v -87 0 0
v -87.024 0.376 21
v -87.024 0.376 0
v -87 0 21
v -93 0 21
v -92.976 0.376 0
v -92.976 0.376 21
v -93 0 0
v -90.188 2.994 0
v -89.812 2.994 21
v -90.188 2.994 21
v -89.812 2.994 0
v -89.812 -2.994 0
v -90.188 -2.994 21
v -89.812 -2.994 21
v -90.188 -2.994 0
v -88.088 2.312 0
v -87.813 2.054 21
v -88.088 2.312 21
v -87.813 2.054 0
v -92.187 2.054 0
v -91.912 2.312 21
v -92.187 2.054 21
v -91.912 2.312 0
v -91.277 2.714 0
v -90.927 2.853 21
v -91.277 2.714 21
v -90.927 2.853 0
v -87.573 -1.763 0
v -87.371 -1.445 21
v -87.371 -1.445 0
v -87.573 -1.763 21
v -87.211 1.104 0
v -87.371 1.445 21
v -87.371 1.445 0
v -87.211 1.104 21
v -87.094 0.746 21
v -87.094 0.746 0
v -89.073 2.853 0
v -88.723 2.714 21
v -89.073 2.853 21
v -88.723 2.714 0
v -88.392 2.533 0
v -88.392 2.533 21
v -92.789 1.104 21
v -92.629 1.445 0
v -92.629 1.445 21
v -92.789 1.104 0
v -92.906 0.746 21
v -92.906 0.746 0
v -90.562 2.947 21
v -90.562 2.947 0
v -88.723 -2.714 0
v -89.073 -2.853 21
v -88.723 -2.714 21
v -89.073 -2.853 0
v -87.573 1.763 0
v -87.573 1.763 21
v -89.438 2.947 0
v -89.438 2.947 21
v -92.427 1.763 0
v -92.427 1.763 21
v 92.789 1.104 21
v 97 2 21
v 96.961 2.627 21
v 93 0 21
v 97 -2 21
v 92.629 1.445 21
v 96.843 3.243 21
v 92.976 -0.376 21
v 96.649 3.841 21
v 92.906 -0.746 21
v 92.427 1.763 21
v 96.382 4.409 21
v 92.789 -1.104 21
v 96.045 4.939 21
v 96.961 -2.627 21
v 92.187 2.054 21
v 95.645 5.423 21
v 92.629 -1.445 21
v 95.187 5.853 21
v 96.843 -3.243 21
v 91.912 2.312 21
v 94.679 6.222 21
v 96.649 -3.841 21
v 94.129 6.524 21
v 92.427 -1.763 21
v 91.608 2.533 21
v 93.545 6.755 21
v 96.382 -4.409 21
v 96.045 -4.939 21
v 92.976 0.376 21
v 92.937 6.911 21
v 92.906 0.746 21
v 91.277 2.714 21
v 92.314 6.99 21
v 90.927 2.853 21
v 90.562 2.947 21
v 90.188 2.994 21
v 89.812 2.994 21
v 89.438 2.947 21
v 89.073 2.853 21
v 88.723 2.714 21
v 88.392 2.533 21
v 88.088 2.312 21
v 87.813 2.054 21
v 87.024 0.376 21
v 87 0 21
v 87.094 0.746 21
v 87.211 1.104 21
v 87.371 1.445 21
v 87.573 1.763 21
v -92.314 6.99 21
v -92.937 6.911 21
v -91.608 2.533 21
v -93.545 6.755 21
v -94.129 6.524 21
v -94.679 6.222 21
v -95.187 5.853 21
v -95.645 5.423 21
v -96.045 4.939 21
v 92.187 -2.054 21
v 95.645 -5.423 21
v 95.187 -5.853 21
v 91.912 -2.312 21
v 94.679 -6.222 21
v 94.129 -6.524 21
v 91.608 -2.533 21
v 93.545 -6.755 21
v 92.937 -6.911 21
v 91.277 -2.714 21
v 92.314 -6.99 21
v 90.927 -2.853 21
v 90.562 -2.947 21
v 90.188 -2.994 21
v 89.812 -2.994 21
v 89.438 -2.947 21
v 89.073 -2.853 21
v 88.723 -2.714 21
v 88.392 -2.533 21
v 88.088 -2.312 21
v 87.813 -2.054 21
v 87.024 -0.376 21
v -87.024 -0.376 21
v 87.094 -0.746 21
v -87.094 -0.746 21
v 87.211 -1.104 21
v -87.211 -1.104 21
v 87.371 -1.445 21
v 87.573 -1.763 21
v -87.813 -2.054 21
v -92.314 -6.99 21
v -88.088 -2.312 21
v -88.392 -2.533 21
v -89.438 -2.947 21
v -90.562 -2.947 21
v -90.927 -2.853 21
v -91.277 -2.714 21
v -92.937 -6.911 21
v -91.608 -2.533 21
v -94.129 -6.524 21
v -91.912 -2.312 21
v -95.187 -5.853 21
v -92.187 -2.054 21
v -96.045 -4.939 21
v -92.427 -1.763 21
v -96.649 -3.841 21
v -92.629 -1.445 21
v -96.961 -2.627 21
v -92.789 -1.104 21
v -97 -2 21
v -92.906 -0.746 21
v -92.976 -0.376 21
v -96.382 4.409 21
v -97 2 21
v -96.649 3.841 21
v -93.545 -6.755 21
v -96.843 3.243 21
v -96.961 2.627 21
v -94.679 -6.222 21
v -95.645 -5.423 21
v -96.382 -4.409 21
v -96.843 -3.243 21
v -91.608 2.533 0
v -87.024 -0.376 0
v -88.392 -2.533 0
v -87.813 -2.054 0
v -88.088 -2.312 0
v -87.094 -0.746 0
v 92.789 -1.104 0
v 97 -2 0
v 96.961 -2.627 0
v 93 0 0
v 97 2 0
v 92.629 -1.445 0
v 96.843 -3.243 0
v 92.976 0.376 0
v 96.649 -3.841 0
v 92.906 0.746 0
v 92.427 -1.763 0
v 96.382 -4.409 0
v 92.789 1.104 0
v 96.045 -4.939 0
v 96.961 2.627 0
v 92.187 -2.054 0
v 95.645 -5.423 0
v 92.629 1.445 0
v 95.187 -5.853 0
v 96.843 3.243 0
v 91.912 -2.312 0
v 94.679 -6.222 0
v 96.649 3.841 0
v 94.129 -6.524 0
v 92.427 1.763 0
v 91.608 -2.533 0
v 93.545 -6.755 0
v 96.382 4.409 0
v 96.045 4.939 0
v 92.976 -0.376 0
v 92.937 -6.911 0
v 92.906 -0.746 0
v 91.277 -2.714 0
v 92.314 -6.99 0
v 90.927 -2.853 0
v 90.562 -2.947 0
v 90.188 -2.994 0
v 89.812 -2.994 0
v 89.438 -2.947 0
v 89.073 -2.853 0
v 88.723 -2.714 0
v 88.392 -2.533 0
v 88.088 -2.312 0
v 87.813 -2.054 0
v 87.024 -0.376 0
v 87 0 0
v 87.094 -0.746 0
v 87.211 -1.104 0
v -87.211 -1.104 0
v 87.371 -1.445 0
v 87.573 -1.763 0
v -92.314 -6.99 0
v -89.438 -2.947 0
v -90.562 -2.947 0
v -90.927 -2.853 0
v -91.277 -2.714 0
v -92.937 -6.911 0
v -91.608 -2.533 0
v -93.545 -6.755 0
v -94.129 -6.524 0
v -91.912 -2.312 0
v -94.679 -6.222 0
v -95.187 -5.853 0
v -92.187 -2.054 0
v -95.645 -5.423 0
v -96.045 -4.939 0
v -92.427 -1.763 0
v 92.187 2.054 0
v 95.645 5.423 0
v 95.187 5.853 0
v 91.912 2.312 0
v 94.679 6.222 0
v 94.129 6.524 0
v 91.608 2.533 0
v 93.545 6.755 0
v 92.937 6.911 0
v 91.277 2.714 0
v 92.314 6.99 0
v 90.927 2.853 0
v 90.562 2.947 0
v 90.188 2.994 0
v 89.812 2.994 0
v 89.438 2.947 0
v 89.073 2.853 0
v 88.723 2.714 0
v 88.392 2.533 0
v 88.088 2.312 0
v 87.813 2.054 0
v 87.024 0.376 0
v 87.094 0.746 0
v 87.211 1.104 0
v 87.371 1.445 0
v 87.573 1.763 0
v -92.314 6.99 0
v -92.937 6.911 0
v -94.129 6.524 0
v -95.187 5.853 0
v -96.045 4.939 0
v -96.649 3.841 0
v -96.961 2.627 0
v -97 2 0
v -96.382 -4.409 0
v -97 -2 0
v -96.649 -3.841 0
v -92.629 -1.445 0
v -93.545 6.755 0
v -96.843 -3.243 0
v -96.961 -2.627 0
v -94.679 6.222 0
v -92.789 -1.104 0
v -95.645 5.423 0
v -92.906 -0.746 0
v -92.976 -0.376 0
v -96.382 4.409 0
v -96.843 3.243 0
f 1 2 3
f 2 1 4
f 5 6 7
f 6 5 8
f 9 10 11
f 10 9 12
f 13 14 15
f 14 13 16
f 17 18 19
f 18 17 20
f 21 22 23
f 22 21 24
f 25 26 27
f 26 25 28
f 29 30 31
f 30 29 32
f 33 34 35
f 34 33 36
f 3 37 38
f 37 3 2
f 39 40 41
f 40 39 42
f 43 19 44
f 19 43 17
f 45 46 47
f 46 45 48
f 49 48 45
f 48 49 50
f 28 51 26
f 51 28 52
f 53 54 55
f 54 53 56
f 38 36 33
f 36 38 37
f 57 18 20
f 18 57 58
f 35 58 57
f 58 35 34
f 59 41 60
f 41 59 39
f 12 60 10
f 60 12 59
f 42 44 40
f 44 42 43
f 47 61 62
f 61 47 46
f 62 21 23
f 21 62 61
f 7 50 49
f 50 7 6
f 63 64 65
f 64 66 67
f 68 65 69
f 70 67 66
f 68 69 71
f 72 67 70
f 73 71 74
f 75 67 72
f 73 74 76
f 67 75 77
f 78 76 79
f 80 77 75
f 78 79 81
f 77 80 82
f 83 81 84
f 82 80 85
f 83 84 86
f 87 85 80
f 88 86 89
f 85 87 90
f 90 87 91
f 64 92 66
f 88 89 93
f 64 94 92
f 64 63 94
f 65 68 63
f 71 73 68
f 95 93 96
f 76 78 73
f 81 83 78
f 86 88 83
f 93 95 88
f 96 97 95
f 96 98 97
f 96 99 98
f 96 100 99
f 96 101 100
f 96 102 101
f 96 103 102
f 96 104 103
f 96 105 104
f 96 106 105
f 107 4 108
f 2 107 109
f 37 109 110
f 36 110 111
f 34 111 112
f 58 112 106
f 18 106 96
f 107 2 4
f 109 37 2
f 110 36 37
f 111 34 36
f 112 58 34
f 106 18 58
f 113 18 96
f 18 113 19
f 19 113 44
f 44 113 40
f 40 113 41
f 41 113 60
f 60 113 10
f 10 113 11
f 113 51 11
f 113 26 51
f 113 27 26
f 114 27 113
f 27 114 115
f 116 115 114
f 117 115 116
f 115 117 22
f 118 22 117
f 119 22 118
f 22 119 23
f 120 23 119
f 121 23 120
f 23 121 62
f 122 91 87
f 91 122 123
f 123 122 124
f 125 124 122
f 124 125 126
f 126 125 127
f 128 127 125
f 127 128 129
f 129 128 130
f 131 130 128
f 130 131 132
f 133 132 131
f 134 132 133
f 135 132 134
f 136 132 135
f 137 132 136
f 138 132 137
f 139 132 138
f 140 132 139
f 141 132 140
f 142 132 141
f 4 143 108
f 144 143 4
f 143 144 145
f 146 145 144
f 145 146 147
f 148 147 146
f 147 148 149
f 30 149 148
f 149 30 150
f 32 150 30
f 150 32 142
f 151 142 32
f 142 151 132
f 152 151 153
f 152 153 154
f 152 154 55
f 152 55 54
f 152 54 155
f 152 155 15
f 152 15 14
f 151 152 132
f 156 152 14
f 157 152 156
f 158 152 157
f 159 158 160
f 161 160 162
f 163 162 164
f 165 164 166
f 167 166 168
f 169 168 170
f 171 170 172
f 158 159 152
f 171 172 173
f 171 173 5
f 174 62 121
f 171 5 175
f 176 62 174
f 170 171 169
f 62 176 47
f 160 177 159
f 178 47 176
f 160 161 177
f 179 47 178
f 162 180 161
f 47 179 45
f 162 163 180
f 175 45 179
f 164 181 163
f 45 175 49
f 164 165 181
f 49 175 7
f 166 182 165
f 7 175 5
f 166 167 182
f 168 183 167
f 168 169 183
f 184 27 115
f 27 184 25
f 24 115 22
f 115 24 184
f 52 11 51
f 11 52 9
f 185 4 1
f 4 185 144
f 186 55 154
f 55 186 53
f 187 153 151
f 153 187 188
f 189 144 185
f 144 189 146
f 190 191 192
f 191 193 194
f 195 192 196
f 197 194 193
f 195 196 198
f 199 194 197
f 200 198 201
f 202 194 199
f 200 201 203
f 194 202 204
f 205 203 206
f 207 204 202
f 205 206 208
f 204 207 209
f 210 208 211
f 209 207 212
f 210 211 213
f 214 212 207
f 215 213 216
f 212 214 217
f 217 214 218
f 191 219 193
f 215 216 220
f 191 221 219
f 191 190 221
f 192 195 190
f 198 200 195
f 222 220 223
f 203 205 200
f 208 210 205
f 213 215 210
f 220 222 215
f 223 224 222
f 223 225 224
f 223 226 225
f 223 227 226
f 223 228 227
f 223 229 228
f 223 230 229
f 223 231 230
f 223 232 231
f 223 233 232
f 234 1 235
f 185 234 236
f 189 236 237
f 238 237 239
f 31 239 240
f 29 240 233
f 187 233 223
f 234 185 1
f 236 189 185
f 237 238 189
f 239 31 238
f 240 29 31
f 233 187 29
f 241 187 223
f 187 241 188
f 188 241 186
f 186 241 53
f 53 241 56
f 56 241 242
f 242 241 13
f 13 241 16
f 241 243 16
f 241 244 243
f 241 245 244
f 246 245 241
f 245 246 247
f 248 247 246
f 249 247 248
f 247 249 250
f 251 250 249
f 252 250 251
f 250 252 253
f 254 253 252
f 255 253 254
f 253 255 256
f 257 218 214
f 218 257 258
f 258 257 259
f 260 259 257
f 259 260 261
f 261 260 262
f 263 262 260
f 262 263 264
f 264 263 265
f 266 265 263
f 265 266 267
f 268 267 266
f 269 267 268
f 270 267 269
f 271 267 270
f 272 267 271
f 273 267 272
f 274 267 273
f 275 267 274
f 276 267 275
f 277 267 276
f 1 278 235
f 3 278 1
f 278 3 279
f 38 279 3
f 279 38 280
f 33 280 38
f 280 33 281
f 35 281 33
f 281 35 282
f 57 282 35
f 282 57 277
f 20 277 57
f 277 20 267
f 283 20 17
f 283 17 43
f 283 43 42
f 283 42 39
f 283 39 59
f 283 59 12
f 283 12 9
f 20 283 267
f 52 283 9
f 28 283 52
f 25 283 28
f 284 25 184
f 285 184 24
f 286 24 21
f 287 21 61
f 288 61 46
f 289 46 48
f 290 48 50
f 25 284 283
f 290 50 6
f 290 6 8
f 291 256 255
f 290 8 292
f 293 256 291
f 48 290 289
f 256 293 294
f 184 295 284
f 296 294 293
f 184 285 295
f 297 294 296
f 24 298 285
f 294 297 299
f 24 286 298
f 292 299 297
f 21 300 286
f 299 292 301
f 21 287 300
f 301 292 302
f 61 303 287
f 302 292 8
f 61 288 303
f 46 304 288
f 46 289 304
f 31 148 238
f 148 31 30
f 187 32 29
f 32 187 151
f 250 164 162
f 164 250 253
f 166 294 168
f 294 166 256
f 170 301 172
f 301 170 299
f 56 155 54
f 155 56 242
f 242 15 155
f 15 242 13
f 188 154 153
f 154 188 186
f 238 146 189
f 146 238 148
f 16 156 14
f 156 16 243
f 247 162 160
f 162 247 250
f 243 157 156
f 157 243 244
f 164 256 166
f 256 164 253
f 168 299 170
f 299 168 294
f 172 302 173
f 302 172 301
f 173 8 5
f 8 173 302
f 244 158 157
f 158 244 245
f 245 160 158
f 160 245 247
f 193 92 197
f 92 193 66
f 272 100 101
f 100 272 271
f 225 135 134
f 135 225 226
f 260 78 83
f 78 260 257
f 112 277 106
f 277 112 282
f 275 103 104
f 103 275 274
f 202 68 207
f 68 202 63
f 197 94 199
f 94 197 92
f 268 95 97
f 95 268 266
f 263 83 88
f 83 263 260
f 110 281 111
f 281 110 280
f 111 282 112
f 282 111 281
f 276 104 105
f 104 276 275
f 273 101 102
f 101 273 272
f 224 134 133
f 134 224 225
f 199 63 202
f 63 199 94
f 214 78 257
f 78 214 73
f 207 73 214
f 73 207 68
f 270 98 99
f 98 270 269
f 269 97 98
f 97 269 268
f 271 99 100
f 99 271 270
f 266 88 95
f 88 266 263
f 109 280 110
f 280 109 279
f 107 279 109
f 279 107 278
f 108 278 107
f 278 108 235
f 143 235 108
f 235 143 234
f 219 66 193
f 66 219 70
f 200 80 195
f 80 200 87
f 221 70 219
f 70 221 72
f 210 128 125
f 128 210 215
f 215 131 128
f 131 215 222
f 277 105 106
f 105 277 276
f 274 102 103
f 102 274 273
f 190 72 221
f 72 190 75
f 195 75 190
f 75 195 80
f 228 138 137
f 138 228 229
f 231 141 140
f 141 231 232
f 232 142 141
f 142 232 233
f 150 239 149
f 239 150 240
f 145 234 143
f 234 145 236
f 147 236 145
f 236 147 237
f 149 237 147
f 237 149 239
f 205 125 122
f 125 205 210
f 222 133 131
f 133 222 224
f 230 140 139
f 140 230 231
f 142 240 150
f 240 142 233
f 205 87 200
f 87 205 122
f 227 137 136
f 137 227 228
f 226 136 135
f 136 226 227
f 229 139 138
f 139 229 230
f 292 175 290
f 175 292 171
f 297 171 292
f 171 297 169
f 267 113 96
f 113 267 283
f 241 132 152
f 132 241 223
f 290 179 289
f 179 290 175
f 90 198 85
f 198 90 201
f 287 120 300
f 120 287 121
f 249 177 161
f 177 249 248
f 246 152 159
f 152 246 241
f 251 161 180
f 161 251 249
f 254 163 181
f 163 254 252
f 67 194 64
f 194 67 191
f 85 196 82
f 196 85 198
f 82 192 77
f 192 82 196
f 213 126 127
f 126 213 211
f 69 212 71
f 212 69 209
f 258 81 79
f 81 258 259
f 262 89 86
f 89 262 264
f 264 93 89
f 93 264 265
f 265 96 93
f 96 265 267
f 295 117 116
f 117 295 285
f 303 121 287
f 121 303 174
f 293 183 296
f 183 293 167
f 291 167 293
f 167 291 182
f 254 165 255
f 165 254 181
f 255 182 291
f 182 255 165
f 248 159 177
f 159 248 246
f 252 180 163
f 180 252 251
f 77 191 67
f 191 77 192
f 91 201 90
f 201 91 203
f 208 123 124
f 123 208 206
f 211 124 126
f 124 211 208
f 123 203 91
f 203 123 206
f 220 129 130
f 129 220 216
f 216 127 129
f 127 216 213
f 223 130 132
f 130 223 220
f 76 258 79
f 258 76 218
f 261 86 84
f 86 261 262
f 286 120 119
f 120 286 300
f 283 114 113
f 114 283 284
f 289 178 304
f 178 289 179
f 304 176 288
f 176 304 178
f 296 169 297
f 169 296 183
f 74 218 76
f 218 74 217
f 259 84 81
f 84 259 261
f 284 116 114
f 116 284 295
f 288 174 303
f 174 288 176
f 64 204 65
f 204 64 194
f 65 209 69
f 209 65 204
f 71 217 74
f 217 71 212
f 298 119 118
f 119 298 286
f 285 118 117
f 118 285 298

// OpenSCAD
$fn = 50;


difference() {
	union() {
		hull() {
			translate(v = [-92.0000000000, 2.0000000000, 0]) {
				cylinder(h = 21, r = 5);
			}
			translate(v = [92.0000000000, 2.0000000000, 0]) {
				cylinder(h = 21, r = 5);
			}
			translate(v = [-92.0000000000, -2.0000000000, 0]) {
				cylinder(h = 21, r = 5);
			}
			translate(v = [92.0000000000, -2.0000000000, 0]) {
				cylinder(h = 21, r = 5);
			}
		}
	}
	union() {
		translate(v = [-90.0000000000, 0.0000000000, 0]) {
			cylinder(h = 21, r = 3.0000000000);
		}
		translate(v = [90.0000000000, 0.0000000000, 0]) {
			cylinder(h = 21, r = 3.0000000000);
		}
		translate(v = [-90.0000000000, 0.0000000000, 0]) {
			cylinder(h = 21, r = 1.5000000000);
		}
		translate(v = [90.0000000000, 0.0000000000, 0]) {
			cylinder(h = 21, r = 1.5000000000);
		}
		translate(v = [-90.0000000000, 0.0000000000, 0]) {
			cylinder(h = 21, r = 1.5000000000);
		}
		translate(v = [90.0000000000, 0.0000000000, 0]) {
			cylinder(h = 21, r = 1.5000000000);
		}
		translate(v = [-90.0000000000, 0.0000000000, 0]) {
			cylinder(h = 21, r = 1.5000000000);
		}
		translate(v = [90.0000000000, 0.0000000000, 0]) {
			cylinder(h = 21, r = 1.5000000000);
		}
	}
}
